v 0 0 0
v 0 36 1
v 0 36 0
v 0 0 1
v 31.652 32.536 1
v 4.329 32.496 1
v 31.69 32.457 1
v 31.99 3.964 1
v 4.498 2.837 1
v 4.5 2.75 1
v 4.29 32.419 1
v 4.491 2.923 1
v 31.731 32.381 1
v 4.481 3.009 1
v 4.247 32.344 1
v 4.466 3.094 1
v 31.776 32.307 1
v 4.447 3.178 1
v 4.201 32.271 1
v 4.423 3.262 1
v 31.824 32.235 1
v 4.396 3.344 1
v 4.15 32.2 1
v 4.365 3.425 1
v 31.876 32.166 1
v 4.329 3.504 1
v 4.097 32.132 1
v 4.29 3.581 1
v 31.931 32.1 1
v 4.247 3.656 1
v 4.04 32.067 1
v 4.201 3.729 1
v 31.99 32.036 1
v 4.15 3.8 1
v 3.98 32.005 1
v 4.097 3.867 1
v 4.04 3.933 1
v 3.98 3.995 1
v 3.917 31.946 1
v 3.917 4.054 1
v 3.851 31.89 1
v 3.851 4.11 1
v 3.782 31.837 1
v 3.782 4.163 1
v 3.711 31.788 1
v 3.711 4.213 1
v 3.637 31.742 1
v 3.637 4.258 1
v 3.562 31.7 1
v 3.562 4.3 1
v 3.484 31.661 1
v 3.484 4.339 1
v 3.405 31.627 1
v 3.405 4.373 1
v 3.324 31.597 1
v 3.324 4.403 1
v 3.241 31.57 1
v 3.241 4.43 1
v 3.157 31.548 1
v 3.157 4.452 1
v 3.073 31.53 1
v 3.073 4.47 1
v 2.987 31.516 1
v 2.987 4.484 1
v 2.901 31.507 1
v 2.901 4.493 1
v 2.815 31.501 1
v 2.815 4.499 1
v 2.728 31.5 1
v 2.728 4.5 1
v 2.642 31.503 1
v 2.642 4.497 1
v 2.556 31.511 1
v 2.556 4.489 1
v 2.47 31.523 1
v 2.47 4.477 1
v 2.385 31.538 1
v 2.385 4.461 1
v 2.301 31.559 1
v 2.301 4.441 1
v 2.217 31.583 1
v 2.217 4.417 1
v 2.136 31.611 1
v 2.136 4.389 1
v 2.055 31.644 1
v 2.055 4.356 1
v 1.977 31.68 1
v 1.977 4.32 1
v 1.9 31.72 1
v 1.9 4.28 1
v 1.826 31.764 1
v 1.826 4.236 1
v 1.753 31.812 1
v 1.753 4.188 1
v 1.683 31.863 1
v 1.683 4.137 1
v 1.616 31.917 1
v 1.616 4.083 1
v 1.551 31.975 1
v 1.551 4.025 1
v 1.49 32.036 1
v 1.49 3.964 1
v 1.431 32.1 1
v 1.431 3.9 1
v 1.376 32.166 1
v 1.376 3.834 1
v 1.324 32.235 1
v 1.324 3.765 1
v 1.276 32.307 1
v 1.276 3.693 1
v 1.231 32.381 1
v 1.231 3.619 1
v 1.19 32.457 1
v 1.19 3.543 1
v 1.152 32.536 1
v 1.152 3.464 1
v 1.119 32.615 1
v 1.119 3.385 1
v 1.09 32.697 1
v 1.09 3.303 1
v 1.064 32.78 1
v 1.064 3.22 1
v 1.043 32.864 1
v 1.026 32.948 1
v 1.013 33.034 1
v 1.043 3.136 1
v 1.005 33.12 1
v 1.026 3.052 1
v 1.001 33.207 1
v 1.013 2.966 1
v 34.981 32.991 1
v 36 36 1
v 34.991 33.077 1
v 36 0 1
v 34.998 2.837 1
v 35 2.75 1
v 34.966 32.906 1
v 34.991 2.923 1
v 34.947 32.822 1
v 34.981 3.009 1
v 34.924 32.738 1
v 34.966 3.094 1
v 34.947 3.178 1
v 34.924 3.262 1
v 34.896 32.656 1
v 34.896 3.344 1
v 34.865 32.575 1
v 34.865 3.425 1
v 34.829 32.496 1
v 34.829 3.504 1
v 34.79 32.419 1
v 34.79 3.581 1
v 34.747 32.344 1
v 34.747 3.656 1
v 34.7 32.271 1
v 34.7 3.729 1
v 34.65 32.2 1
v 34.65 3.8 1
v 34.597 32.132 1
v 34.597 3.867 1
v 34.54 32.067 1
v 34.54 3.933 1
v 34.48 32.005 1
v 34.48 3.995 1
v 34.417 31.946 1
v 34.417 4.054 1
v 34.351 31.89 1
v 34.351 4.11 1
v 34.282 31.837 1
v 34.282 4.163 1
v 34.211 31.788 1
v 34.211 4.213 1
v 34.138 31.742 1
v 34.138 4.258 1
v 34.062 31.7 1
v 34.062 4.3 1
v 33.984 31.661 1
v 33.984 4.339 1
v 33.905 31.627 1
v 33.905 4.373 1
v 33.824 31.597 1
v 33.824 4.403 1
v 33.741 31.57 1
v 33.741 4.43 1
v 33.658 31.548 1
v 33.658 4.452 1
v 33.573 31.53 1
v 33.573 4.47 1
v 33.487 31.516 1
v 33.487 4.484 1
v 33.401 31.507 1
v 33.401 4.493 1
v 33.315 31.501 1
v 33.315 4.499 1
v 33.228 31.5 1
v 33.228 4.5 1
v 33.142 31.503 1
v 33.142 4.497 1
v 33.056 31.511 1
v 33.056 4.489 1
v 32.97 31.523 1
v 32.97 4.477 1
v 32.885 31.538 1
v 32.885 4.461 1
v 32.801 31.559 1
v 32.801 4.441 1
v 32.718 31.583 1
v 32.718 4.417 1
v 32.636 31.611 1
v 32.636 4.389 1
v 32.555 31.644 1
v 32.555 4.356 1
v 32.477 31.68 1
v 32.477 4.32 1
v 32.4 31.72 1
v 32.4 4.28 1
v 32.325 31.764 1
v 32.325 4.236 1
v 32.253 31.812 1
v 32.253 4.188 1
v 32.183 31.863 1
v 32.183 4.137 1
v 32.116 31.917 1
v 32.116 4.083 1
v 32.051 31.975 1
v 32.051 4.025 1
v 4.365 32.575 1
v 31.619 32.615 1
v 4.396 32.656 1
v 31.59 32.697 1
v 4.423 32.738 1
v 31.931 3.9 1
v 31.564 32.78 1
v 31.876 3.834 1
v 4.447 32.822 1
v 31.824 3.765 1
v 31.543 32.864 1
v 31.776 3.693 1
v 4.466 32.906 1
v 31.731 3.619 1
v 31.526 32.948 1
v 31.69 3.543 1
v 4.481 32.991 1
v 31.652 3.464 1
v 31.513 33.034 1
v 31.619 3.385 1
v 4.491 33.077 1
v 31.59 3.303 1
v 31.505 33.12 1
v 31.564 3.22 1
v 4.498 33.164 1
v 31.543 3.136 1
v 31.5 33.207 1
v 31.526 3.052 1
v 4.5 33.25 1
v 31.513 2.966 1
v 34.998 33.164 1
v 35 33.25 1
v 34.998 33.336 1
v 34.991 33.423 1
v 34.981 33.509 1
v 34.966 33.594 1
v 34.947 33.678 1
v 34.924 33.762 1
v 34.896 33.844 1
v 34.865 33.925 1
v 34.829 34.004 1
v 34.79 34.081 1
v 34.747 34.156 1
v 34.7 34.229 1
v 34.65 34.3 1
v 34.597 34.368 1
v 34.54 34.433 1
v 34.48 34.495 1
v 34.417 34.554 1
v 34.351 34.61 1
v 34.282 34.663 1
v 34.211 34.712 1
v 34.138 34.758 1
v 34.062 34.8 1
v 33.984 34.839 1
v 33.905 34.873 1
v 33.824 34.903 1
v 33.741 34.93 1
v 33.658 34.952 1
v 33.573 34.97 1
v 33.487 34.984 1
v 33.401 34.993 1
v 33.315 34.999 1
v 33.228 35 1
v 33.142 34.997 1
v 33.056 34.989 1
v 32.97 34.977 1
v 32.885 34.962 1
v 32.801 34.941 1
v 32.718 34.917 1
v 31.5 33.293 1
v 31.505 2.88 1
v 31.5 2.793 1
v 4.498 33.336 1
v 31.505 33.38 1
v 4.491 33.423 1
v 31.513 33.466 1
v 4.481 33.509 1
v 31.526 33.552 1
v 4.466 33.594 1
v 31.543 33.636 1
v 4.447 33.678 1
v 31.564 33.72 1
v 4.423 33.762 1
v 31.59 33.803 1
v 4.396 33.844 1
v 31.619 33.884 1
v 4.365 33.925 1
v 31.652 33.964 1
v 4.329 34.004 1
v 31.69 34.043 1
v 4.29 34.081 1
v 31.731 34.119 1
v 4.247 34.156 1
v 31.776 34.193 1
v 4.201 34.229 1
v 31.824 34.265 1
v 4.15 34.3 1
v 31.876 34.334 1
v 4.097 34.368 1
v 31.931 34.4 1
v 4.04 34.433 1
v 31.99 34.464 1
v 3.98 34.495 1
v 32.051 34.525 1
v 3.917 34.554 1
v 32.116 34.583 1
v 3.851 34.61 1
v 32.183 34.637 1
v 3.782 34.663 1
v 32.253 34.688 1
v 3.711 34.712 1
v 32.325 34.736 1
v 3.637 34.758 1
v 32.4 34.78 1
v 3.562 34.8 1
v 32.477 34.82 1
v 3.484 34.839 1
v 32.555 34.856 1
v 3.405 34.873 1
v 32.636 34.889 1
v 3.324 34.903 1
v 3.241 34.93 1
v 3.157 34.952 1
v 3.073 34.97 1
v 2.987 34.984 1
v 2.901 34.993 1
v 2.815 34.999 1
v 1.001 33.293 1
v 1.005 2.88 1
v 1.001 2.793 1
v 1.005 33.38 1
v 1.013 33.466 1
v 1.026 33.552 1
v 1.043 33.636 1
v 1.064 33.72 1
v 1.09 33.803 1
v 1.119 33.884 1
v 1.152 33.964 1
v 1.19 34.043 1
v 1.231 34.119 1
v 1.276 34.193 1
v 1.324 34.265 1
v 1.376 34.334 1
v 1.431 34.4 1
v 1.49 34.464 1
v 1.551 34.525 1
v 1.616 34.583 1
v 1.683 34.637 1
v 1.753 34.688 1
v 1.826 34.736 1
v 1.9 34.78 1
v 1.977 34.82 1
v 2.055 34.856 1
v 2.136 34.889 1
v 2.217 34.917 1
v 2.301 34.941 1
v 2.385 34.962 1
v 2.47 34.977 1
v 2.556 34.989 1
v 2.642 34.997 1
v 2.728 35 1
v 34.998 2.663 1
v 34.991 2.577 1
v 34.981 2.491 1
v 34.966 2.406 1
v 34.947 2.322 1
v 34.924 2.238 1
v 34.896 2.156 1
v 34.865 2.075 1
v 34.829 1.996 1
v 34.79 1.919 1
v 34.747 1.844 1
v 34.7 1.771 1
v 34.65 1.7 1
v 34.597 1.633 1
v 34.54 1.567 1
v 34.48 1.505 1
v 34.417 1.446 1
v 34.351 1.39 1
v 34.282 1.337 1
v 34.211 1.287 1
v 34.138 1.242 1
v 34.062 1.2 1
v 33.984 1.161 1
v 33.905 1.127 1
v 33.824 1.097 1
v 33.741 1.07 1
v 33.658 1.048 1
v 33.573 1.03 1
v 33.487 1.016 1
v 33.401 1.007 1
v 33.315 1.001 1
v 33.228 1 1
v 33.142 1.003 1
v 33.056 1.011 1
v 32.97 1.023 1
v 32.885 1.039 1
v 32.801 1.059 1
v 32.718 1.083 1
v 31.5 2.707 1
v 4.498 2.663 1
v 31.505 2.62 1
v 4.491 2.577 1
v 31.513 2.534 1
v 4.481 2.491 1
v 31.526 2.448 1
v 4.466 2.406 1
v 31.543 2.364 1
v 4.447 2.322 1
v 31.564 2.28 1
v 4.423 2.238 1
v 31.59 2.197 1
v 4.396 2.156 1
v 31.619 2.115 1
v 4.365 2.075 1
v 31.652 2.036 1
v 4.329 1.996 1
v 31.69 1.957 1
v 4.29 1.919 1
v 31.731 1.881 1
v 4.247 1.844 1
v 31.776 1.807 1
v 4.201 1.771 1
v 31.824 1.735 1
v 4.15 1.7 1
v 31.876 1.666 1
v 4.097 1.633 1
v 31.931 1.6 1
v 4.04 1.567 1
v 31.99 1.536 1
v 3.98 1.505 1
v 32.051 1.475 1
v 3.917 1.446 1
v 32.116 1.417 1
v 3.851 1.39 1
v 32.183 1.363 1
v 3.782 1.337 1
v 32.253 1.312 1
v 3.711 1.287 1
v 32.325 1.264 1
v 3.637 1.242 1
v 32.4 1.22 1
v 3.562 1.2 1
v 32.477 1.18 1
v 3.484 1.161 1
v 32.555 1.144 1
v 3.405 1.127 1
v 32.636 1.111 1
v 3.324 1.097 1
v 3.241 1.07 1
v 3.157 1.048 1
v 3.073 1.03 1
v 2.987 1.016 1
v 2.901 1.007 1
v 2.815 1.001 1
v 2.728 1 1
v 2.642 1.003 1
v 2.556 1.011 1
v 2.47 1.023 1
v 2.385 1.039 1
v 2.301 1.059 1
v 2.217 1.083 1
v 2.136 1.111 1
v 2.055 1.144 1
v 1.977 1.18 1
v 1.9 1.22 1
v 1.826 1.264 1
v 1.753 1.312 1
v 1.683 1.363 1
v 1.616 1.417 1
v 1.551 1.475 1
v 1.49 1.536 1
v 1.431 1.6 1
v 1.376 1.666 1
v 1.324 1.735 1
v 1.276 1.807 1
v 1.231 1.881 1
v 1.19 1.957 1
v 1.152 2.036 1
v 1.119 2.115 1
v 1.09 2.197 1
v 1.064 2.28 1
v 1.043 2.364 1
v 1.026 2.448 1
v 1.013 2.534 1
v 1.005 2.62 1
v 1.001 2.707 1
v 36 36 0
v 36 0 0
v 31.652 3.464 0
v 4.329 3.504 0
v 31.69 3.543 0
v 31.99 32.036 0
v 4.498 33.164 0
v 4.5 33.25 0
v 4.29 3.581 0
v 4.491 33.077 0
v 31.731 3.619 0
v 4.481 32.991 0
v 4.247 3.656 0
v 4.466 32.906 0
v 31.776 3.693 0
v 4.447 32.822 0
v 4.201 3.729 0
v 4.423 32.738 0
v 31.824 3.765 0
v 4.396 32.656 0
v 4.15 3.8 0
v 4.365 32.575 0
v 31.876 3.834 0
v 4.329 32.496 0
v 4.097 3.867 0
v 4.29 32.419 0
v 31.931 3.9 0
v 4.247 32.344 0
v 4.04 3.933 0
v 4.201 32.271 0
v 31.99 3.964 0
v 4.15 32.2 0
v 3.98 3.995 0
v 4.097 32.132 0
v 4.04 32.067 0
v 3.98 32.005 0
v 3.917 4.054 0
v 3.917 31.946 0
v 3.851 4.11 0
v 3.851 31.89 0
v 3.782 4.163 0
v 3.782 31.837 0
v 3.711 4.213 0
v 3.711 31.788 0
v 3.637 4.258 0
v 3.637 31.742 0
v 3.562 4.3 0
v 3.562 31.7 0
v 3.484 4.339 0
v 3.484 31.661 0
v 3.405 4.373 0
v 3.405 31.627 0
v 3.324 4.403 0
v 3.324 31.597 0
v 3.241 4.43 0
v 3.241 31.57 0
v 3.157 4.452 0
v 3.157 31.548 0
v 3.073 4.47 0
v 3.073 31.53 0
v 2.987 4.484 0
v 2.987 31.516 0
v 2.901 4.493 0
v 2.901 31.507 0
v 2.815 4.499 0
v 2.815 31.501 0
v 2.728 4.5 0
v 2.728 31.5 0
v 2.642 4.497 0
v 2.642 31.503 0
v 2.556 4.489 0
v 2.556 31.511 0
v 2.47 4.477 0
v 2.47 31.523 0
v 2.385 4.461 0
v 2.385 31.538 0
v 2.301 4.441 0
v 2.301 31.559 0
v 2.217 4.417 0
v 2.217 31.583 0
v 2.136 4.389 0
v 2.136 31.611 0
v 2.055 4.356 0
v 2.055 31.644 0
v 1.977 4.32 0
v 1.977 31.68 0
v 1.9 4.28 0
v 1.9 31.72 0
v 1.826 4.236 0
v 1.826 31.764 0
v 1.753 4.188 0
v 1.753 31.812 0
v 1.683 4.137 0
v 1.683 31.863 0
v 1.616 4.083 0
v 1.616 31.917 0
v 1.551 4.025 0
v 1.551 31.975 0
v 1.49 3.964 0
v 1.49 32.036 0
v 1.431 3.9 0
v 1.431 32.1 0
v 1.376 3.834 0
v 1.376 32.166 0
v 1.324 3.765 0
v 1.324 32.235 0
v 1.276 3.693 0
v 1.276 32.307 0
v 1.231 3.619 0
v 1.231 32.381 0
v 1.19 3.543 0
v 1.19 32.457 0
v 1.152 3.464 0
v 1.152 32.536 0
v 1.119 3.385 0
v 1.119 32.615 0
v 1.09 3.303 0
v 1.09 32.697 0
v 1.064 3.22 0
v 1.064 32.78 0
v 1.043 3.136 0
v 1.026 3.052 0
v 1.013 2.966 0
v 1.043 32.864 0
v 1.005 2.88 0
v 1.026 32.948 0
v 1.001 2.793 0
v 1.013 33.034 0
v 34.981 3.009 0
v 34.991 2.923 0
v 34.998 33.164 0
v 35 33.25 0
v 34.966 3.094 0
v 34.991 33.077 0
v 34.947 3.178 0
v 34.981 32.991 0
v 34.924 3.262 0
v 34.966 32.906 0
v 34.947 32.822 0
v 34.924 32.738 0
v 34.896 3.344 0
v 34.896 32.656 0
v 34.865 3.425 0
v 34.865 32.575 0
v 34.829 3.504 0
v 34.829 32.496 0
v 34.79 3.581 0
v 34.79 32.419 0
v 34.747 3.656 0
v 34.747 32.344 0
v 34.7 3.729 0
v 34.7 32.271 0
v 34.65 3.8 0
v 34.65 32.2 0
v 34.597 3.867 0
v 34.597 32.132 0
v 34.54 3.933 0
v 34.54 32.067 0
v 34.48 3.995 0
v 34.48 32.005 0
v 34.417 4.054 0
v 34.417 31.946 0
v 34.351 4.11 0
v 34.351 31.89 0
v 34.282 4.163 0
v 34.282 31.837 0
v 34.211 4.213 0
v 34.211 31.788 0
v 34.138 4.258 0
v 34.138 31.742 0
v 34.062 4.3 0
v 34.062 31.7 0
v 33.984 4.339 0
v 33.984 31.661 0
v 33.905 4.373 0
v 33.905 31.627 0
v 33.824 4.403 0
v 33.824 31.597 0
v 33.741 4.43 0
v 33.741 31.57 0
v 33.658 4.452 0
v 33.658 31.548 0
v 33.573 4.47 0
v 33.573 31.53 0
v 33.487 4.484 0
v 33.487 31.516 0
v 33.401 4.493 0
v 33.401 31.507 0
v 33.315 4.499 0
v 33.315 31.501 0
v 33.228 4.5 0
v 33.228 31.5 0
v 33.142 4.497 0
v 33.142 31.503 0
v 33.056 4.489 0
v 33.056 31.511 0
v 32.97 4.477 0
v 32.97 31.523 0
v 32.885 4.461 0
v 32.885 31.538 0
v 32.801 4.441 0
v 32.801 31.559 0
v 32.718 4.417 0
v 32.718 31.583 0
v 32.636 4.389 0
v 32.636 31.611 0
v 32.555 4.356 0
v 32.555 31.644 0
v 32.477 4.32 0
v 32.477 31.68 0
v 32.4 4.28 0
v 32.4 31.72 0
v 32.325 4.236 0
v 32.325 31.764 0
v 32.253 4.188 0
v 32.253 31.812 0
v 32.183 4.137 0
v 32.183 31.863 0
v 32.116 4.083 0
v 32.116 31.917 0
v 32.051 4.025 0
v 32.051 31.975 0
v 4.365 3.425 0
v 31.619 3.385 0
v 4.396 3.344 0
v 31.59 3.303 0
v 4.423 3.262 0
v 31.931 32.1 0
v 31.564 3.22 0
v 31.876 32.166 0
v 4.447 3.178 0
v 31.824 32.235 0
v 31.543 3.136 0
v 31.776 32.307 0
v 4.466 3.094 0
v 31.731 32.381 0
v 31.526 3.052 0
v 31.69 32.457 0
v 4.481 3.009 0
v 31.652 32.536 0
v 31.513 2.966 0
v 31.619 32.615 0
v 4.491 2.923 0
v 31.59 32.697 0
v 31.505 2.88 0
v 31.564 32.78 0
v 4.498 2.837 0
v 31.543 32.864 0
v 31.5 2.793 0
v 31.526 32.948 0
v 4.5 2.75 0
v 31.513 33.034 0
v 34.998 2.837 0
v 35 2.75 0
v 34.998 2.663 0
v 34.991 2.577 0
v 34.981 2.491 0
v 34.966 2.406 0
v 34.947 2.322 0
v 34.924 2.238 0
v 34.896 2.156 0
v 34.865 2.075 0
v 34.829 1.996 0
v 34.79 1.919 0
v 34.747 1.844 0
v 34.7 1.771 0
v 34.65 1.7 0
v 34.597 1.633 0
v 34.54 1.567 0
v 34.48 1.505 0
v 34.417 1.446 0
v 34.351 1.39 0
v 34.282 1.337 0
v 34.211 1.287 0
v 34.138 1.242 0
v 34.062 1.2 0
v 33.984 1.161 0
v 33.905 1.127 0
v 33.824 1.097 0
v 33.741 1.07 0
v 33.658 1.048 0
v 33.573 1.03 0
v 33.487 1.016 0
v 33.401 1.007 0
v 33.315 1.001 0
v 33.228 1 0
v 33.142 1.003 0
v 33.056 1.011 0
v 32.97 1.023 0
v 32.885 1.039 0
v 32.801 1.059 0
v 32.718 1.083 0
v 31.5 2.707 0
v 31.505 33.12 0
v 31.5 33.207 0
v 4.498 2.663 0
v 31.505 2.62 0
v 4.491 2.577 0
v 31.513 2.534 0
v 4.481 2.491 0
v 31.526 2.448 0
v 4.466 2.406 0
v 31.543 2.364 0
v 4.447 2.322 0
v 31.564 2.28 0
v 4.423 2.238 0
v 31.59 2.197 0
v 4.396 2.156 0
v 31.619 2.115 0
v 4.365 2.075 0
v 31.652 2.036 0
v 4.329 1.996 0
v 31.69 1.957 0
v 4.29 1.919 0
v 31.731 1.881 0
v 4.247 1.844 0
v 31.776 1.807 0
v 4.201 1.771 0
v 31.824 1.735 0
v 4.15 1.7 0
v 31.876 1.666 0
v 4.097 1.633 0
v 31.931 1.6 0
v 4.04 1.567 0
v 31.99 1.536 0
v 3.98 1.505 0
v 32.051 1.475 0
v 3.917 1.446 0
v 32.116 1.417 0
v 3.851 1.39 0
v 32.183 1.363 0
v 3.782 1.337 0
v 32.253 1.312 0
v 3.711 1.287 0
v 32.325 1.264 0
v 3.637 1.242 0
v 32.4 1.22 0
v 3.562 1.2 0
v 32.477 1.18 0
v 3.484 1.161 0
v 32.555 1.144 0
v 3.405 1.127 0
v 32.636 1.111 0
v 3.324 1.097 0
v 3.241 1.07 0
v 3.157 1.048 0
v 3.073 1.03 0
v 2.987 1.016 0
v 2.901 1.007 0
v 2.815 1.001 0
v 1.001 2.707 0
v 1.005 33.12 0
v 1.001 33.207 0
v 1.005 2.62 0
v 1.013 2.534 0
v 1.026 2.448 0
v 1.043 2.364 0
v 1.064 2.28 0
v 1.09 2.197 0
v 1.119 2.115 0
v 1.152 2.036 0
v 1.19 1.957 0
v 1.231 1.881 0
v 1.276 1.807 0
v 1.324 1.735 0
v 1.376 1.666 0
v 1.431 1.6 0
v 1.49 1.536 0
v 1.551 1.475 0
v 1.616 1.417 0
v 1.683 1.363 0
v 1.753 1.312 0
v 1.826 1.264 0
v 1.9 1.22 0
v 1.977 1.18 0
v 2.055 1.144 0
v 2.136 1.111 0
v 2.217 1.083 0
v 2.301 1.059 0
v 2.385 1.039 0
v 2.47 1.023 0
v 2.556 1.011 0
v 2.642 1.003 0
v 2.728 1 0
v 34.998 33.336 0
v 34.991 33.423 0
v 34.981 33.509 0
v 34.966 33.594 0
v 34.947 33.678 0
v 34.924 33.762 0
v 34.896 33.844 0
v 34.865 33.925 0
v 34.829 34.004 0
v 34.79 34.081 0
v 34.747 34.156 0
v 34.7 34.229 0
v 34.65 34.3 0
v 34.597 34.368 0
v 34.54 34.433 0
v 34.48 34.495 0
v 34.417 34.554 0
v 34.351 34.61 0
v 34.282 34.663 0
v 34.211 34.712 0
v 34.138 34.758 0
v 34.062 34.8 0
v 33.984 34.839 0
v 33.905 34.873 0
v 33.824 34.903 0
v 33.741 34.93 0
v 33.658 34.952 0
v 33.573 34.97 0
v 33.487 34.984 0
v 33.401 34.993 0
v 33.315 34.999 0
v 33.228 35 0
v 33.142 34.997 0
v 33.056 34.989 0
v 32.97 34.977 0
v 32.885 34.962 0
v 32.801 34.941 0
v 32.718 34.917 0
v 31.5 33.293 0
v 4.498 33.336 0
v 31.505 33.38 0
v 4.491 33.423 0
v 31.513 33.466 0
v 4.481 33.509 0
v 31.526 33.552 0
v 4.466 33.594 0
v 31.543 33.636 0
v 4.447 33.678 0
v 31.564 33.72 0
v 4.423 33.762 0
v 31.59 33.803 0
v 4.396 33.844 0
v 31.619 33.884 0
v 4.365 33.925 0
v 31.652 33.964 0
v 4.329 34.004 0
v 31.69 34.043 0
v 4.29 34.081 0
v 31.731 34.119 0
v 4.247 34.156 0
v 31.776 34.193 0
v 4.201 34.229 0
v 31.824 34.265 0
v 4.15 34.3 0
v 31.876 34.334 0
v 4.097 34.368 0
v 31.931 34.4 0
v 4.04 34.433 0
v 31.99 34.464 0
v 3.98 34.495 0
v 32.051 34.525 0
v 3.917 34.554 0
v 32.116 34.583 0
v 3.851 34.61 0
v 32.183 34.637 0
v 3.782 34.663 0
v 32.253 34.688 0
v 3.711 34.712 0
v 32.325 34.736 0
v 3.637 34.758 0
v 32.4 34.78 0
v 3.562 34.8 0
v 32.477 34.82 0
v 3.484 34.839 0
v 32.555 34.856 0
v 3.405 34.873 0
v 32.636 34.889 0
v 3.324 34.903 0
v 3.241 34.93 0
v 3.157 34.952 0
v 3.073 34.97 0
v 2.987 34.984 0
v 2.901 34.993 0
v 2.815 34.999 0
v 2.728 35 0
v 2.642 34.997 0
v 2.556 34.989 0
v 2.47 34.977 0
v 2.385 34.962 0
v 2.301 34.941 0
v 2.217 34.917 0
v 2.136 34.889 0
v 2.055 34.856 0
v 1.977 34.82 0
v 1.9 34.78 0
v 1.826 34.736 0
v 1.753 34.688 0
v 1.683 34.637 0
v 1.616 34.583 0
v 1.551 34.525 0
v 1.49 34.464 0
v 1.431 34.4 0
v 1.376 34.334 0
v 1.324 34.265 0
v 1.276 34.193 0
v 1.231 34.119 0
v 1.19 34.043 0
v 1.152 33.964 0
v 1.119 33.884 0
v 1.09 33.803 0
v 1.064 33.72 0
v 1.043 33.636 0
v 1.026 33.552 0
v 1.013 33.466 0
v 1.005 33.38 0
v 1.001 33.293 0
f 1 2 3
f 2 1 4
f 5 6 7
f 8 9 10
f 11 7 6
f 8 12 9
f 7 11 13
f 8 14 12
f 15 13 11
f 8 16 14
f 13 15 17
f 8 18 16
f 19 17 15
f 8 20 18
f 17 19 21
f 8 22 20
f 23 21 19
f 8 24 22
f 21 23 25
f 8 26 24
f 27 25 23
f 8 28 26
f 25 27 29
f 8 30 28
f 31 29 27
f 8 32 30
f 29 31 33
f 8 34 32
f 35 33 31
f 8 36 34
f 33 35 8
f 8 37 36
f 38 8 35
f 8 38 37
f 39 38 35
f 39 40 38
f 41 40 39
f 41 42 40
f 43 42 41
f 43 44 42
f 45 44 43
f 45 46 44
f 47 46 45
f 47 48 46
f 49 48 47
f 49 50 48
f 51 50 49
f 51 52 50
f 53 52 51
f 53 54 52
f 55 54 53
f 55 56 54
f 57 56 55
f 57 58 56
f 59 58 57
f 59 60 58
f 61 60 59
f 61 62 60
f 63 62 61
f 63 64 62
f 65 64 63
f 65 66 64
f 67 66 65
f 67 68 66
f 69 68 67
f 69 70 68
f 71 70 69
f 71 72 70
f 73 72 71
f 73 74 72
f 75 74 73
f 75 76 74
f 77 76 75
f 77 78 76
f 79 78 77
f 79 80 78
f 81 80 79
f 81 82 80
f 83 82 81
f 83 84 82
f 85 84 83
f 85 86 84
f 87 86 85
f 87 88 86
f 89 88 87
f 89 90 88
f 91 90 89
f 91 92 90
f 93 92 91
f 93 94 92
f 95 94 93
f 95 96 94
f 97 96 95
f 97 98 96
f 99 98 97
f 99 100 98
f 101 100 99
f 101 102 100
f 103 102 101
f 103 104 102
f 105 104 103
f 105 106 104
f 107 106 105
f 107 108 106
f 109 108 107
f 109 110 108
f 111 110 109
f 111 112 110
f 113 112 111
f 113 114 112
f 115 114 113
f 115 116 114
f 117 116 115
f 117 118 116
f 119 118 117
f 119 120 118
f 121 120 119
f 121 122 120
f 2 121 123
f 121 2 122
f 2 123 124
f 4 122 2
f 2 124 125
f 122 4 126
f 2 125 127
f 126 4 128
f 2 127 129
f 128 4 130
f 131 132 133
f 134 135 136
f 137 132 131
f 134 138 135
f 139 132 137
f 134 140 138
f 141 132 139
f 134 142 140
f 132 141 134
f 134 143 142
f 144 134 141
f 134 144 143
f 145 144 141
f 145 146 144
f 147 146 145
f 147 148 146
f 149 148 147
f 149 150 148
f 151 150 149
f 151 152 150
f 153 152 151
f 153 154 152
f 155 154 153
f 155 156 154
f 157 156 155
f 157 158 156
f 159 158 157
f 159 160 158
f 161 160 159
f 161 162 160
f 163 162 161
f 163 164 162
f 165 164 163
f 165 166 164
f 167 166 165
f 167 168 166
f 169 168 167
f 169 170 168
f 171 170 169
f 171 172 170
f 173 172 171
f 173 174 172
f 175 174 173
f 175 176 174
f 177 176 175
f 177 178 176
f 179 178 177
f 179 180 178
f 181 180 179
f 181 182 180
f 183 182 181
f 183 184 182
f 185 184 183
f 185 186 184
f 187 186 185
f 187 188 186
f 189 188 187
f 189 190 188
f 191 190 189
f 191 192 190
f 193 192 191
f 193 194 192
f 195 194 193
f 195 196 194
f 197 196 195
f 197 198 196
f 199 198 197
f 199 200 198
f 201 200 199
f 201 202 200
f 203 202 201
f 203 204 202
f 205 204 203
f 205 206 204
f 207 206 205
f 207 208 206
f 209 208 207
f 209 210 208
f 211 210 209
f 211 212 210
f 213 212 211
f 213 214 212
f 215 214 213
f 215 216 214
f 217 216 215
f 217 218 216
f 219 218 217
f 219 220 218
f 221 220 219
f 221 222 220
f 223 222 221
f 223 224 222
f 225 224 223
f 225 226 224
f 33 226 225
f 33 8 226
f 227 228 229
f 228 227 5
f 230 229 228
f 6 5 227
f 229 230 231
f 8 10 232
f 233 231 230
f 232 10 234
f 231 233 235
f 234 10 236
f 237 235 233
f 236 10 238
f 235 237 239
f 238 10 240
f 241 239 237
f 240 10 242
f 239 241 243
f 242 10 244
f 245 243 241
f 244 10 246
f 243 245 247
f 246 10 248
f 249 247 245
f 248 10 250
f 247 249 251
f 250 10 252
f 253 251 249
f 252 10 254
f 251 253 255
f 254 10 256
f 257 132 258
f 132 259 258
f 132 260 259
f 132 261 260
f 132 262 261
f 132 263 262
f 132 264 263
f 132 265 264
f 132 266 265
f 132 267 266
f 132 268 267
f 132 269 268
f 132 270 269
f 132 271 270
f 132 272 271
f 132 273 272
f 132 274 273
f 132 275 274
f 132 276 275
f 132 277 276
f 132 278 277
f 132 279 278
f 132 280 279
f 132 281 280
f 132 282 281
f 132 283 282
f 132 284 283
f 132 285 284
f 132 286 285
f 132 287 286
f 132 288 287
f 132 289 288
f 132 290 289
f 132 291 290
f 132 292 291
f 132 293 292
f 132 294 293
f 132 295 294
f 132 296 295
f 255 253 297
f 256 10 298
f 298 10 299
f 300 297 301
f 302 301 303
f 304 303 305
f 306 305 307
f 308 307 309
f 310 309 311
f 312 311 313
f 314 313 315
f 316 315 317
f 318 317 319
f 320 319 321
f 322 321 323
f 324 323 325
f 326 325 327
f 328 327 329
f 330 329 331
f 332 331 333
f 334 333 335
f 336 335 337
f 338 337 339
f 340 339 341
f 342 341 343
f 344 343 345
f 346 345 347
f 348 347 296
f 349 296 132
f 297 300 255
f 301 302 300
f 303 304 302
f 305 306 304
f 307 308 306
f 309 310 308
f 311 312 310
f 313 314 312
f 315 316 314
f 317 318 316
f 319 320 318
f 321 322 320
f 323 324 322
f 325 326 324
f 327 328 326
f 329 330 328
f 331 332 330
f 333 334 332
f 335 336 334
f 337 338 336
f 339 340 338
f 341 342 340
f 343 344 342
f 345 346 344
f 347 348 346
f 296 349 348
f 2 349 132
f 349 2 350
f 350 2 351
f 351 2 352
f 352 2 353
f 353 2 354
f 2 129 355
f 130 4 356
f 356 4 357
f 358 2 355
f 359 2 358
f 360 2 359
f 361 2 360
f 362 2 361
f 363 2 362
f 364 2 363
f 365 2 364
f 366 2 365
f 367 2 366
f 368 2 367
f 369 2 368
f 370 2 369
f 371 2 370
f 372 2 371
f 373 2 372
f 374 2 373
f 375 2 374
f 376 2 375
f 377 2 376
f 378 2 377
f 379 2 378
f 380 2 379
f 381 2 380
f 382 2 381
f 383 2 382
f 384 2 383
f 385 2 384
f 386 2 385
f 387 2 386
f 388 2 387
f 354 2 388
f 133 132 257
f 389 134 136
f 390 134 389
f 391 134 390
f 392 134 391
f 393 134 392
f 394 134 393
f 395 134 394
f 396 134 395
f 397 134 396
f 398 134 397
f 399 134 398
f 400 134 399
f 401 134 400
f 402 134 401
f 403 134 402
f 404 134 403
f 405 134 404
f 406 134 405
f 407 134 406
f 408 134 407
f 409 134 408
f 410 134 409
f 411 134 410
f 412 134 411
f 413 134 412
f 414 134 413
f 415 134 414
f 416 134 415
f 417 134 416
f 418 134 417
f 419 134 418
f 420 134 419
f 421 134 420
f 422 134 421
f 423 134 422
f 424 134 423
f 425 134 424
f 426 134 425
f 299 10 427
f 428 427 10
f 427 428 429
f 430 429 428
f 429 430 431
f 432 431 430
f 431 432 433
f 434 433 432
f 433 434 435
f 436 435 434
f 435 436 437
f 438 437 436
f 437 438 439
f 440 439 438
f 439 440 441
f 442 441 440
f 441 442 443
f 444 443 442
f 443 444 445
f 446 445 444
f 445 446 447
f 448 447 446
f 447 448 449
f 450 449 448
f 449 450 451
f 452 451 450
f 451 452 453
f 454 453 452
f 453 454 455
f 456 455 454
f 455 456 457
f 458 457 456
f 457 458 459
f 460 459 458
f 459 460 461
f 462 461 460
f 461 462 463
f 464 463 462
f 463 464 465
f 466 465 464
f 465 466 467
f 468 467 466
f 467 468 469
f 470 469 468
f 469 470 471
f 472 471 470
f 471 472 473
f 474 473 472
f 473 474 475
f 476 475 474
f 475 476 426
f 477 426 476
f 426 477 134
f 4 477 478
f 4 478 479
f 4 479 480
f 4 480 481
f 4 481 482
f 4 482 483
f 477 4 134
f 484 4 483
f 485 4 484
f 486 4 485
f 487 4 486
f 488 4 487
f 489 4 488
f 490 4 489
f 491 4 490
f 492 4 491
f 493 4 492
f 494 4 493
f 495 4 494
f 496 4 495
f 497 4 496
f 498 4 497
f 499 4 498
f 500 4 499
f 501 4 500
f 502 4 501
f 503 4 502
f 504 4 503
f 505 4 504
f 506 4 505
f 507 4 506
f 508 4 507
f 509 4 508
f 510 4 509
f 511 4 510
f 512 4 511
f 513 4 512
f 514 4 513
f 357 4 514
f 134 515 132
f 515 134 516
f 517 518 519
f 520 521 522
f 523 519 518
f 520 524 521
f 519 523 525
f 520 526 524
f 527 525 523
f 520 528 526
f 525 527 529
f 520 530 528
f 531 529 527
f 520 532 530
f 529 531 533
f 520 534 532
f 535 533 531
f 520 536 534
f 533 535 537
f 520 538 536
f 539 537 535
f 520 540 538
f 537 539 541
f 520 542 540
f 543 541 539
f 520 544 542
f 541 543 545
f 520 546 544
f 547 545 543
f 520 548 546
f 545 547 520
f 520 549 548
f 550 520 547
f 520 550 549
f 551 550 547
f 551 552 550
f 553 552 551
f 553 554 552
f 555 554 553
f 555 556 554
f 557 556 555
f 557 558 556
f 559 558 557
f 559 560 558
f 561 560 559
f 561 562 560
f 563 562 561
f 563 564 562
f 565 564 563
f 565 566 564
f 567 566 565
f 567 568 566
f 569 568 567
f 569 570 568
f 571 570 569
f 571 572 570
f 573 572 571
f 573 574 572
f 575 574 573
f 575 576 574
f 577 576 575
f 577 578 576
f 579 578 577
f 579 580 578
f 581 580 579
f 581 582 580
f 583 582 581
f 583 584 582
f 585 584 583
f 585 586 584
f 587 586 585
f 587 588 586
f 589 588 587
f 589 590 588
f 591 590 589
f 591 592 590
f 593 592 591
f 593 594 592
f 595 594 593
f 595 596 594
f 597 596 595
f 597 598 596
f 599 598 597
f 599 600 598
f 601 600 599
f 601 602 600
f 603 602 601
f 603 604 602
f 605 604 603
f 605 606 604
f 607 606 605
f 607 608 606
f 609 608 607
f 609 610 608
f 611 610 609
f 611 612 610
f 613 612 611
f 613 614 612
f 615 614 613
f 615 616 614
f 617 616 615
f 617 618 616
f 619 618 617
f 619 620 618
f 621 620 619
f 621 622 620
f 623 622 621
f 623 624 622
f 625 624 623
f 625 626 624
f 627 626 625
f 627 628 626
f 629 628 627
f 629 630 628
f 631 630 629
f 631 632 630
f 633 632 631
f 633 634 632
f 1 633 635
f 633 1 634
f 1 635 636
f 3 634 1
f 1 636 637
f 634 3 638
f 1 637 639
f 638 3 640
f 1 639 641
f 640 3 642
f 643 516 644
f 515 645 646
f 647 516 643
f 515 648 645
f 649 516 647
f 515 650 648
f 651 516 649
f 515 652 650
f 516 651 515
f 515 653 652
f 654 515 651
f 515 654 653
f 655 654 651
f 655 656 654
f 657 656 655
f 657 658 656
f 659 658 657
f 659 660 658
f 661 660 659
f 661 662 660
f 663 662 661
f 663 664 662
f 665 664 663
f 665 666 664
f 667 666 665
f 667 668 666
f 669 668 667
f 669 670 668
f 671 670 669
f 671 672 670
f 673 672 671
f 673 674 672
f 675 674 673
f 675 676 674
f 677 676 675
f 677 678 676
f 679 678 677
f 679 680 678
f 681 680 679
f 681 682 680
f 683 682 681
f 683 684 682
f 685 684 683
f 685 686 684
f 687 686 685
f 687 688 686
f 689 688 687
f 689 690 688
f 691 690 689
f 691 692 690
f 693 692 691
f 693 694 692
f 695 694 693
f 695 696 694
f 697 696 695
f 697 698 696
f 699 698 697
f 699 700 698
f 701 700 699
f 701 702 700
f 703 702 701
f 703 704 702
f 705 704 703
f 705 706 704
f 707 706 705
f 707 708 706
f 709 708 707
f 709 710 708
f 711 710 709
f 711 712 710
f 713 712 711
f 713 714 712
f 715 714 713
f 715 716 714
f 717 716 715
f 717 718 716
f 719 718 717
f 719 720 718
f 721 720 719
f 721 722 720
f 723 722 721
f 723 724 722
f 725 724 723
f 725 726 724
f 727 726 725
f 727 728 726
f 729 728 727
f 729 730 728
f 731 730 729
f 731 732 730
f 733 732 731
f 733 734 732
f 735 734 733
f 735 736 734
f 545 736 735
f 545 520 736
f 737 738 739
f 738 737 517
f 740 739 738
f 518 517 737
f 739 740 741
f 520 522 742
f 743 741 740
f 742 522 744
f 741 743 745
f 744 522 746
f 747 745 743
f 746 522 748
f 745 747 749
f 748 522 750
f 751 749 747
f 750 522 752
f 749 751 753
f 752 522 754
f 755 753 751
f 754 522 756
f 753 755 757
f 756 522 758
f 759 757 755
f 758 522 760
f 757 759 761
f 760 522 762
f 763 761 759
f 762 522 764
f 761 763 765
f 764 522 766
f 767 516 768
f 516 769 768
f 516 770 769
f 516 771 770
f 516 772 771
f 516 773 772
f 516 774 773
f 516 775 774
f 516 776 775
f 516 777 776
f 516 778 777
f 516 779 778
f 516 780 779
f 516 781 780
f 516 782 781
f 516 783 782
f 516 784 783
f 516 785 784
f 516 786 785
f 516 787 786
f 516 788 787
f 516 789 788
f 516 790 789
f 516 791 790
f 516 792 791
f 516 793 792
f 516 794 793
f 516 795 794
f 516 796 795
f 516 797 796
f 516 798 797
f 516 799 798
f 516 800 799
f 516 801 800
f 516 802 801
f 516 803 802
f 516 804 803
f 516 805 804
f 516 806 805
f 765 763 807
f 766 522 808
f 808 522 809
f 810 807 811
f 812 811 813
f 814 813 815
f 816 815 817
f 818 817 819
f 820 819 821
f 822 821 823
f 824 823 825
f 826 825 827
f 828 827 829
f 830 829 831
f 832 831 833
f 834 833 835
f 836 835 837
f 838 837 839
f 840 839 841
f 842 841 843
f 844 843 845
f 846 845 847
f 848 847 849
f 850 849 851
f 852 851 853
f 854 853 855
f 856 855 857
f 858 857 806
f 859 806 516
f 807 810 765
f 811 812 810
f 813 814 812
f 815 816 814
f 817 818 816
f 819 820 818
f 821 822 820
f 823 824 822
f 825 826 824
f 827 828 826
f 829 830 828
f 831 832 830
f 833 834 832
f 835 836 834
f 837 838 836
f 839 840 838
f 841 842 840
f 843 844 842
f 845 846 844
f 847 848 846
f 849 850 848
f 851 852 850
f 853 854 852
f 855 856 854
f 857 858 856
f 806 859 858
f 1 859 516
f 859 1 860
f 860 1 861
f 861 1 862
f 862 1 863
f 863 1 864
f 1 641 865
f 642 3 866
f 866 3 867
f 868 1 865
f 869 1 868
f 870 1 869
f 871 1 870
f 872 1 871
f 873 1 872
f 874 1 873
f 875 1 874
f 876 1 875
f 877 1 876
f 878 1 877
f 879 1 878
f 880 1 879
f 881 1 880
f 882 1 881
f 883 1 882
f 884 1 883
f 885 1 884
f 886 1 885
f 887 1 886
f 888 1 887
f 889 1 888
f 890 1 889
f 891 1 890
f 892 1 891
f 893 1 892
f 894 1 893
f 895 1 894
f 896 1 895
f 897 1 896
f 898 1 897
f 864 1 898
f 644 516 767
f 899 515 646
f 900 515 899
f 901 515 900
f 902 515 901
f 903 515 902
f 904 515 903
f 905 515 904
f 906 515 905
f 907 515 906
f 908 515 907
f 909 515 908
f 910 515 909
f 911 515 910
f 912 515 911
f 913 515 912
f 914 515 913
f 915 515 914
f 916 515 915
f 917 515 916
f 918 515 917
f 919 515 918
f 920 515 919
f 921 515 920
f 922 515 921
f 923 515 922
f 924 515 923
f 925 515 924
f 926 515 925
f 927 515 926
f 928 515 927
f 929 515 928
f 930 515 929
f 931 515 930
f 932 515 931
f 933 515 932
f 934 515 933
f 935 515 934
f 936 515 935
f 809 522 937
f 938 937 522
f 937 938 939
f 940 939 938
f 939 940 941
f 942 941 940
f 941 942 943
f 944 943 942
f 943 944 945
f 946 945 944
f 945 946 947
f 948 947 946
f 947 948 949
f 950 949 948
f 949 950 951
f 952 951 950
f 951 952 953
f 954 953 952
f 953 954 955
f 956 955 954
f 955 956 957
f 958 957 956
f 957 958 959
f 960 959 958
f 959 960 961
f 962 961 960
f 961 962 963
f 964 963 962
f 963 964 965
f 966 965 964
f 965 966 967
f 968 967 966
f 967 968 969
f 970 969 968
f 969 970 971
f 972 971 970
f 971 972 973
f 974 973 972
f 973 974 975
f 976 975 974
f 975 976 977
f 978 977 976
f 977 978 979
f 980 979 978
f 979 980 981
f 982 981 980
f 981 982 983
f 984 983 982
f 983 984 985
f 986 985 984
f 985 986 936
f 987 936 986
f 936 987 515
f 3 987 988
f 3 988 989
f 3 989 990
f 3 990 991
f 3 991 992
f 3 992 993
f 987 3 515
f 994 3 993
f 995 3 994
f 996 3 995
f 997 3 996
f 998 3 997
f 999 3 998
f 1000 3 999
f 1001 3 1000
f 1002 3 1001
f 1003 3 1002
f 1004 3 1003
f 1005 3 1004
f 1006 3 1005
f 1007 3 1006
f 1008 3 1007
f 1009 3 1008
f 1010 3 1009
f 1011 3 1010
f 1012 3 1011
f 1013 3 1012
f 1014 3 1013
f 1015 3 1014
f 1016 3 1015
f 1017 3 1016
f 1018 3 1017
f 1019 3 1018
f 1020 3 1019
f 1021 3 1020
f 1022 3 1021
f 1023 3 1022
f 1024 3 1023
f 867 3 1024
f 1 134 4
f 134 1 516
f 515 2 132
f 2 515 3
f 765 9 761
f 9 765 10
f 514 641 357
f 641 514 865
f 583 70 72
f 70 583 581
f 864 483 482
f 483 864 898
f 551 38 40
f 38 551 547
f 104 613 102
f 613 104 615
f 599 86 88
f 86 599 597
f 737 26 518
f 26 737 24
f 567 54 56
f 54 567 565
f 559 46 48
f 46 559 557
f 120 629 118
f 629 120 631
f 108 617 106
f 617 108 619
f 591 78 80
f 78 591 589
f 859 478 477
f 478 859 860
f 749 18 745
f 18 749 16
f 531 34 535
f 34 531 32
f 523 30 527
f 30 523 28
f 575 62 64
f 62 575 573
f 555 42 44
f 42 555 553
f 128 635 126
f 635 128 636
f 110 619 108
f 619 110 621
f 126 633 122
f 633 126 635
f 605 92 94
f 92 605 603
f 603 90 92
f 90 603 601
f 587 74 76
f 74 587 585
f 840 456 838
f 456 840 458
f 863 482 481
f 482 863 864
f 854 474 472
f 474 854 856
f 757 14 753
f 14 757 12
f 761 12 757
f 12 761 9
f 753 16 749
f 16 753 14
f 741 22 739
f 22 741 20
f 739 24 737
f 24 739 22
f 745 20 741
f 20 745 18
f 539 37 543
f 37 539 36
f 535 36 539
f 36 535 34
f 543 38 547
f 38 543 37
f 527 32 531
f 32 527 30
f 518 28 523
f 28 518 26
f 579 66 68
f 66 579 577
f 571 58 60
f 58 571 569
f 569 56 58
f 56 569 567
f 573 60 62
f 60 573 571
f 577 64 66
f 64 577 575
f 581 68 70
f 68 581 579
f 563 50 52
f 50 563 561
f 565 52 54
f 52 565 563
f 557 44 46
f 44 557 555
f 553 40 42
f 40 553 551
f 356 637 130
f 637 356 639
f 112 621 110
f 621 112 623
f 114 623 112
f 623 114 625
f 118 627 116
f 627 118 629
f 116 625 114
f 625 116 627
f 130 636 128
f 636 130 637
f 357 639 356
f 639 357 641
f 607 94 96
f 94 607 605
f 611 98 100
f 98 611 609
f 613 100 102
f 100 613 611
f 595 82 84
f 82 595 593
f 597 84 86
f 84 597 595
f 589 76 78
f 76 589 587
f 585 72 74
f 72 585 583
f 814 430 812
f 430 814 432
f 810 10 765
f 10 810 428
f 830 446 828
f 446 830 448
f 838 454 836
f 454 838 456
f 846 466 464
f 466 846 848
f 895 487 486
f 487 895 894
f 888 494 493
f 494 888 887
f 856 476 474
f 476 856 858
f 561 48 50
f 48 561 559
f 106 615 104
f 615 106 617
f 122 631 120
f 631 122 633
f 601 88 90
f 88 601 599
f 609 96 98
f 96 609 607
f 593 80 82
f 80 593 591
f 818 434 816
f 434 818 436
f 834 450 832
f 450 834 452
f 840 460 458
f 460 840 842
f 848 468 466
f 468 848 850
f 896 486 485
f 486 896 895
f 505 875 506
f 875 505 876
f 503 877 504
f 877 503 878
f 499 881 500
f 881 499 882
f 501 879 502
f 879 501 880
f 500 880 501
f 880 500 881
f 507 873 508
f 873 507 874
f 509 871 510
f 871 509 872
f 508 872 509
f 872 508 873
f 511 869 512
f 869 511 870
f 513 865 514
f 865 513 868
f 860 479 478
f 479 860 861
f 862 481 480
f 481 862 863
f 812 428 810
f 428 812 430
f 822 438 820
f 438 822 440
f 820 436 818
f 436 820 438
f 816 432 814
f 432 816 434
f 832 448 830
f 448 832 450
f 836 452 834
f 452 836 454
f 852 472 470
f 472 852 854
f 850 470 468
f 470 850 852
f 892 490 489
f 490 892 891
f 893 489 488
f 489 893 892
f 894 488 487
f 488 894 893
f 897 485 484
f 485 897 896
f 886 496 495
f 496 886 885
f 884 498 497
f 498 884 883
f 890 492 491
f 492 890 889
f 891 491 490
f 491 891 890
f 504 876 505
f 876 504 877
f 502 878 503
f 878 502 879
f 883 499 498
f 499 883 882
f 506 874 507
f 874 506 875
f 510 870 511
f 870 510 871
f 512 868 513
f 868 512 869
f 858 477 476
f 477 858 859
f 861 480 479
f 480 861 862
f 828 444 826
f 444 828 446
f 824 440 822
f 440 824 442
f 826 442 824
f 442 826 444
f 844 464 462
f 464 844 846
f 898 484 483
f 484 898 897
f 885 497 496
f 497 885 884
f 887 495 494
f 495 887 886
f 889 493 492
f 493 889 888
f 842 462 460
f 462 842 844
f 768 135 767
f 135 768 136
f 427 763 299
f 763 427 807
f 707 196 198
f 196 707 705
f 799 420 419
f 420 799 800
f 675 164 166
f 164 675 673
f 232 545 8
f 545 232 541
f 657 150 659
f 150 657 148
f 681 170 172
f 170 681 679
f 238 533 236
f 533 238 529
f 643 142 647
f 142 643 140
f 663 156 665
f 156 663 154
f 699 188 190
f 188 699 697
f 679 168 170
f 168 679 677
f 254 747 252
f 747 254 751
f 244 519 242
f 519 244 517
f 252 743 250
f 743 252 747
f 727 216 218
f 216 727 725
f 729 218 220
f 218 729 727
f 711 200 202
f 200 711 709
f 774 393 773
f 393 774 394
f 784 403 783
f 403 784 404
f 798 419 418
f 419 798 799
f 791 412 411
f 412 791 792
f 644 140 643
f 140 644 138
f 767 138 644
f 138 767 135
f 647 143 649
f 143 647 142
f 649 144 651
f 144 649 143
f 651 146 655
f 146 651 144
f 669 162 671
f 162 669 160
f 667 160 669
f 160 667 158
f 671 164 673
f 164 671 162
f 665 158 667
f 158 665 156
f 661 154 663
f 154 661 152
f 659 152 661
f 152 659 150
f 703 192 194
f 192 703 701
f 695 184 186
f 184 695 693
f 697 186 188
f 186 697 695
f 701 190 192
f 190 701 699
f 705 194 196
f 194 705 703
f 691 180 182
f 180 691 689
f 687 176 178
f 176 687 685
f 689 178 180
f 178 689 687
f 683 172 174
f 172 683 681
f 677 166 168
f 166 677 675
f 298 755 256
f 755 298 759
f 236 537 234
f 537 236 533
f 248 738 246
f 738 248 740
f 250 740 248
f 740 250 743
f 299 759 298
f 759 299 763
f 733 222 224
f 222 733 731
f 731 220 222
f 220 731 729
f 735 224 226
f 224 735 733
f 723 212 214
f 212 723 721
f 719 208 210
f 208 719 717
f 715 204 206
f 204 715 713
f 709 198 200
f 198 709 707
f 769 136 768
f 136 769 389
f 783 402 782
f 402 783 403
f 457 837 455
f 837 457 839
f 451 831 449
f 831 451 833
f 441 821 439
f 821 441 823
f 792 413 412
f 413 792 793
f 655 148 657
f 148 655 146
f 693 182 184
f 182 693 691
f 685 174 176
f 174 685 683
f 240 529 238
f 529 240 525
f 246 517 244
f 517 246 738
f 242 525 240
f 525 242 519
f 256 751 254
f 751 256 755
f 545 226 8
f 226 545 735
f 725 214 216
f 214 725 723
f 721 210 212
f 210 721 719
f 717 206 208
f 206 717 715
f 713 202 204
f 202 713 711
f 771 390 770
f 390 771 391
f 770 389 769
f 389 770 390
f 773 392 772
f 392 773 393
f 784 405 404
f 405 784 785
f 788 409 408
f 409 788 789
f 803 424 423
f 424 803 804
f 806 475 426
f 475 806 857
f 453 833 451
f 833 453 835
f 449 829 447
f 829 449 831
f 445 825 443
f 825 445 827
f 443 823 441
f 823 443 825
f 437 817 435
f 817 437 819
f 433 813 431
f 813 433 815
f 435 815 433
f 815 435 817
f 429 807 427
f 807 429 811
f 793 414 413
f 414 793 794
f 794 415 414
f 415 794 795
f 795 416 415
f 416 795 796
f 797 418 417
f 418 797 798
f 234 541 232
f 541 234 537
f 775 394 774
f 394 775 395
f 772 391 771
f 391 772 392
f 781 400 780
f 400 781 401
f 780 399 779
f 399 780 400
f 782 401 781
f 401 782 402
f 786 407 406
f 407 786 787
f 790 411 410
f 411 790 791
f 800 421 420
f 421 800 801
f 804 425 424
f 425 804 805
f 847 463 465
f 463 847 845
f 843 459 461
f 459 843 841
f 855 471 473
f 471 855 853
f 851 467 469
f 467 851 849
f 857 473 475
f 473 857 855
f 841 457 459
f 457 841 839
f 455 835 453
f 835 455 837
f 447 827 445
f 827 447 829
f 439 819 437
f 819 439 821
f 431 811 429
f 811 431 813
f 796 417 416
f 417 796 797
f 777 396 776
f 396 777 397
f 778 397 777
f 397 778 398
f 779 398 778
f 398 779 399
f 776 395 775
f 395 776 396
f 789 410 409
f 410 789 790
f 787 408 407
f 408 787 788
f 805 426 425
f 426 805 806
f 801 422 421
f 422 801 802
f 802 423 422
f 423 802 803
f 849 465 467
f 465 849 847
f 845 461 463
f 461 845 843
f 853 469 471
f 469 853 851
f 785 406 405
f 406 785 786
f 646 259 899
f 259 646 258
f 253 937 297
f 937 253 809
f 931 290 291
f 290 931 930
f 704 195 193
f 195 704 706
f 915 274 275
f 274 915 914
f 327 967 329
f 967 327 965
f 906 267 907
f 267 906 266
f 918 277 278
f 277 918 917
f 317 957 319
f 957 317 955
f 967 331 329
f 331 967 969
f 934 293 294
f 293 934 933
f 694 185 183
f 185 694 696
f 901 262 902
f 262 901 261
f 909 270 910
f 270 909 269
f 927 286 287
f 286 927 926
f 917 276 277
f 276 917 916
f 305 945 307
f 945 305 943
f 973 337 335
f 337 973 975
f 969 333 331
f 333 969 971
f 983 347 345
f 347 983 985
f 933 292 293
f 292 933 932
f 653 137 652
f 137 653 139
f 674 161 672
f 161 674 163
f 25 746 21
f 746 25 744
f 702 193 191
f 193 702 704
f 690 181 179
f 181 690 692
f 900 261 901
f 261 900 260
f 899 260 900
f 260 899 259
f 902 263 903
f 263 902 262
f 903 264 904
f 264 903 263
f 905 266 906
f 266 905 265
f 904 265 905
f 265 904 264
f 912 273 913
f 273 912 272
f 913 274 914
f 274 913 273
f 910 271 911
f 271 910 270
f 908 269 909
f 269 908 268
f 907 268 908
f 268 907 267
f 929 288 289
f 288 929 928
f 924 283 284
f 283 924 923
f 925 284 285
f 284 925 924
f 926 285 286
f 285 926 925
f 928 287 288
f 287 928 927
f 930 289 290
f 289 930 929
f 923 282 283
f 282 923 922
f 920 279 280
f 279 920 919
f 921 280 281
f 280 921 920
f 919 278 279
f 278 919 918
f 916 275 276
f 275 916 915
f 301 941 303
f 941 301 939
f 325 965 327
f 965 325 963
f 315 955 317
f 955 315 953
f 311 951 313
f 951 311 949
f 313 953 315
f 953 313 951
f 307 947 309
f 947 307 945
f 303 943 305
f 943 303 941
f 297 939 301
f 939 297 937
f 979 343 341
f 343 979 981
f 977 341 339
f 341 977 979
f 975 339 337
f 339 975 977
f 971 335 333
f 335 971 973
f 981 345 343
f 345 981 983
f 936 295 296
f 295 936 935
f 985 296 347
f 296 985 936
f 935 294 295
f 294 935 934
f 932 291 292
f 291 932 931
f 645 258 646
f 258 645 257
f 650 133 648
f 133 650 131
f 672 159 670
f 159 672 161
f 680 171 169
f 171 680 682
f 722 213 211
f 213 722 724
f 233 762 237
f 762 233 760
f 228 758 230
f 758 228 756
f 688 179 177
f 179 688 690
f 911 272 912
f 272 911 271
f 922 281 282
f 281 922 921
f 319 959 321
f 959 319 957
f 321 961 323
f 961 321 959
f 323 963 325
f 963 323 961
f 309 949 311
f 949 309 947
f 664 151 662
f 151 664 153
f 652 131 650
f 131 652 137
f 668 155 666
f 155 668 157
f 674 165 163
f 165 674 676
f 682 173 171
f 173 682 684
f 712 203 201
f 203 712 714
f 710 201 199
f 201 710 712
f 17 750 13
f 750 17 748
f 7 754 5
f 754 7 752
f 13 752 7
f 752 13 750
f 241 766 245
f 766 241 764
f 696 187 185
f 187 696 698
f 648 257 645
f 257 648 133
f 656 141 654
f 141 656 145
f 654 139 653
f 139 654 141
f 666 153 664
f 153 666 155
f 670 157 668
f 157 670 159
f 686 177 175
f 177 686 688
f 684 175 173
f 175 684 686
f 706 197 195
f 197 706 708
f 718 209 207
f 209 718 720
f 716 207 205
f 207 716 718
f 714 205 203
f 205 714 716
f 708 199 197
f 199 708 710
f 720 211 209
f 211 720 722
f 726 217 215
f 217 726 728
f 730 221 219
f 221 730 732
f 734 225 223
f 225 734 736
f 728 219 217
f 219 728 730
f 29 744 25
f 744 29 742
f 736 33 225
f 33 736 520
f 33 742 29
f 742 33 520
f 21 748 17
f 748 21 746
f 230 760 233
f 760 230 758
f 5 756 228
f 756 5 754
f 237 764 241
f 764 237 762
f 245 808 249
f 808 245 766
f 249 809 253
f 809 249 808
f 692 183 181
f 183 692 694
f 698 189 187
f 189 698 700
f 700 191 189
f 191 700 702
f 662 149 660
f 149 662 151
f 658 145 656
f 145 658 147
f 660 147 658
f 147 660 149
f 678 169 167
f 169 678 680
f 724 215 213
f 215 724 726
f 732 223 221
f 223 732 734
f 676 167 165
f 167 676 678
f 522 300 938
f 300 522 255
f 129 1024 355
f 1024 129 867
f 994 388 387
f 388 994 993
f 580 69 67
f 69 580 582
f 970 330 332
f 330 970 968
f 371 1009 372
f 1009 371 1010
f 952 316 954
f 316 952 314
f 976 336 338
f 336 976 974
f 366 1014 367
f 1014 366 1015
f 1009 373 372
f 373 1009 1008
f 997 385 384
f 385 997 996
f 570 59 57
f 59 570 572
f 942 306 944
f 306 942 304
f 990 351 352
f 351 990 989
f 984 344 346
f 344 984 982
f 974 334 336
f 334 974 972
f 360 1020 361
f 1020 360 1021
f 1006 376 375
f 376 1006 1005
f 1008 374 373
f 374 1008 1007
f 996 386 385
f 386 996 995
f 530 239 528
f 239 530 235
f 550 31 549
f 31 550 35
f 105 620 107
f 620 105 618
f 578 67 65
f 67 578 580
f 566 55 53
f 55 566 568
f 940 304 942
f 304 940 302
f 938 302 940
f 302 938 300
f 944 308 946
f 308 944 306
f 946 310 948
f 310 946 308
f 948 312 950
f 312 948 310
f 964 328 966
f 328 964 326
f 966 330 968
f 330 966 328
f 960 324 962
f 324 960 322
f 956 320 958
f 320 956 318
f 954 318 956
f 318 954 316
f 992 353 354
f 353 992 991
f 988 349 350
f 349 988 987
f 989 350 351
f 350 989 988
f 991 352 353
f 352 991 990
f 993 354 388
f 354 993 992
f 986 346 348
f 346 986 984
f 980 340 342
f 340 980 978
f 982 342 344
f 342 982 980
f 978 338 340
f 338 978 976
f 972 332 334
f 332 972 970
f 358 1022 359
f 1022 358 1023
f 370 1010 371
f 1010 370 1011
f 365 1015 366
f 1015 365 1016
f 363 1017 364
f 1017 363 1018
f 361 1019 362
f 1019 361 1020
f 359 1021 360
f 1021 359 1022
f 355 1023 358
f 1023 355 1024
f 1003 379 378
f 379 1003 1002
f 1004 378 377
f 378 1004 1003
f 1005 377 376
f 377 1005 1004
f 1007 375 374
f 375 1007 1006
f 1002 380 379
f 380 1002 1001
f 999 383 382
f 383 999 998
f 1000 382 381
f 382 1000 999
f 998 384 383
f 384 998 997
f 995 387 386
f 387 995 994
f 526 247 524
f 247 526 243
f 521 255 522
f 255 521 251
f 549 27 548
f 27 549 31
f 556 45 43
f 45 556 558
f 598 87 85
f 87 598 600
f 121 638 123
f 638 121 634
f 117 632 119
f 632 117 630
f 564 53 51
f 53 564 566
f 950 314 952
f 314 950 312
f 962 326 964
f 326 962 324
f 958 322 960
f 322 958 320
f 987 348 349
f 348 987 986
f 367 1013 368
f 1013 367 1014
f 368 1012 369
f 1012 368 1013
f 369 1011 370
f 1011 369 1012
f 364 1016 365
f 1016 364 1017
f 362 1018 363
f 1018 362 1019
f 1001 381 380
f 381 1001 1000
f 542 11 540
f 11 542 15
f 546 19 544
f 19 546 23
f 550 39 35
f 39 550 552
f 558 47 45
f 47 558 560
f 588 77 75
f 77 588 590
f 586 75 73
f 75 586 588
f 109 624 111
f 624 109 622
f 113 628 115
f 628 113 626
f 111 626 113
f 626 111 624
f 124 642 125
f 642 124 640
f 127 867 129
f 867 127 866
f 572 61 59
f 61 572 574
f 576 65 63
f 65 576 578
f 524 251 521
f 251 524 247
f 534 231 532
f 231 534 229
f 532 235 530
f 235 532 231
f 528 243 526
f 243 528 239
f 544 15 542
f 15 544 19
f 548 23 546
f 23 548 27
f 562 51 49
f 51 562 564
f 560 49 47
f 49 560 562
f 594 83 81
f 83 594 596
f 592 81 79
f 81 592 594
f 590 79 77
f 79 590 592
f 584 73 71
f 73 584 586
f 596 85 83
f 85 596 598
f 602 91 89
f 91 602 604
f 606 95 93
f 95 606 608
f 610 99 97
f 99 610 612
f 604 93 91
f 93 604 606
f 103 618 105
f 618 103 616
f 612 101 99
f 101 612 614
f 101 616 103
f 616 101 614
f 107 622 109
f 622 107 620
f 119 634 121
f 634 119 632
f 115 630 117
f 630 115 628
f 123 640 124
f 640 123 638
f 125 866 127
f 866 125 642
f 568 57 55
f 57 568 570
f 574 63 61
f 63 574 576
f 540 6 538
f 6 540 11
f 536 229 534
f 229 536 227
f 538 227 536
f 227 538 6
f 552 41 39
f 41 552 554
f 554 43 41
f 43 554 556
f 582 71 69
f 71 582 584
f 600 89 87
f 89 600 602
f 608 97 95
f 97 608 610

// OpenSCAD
OUTER_SIZE=[36,36,1];
HOLES=3.5;
SPACE_BETWEEN_HOLES=30.5;


// Internal
OFFSET = (OUTER_SIZE[0] - SPACE_BETWEEN_HOLES) / 2;
$fn=127;


// Model
difference() {
  cube(OUTER_SIZE);
  
  translate([OFFSET,OFFSET,-5]) {
    cylinder(r=HOLES/2, h=10);
  }
  translate([OFFSET+SPACE_BETWEEN_HOLES,OFFSET,-5]) {
    cylinder(r=HOLES/2, h=10);
  }
  translate([OFFSET+SPACE_BETWEEN_HOLES,OFFSET+SPACE_BETWEEN_HOLES,-5]) {
    cylinder(r=HOLES/2, h=10);
  }
  
  translate([OFFSET,OFFSET+SPACE_BETWEEN_HOLES,-5]) {
    cylinder(r=HOLES/2, h=10);
  }
}
